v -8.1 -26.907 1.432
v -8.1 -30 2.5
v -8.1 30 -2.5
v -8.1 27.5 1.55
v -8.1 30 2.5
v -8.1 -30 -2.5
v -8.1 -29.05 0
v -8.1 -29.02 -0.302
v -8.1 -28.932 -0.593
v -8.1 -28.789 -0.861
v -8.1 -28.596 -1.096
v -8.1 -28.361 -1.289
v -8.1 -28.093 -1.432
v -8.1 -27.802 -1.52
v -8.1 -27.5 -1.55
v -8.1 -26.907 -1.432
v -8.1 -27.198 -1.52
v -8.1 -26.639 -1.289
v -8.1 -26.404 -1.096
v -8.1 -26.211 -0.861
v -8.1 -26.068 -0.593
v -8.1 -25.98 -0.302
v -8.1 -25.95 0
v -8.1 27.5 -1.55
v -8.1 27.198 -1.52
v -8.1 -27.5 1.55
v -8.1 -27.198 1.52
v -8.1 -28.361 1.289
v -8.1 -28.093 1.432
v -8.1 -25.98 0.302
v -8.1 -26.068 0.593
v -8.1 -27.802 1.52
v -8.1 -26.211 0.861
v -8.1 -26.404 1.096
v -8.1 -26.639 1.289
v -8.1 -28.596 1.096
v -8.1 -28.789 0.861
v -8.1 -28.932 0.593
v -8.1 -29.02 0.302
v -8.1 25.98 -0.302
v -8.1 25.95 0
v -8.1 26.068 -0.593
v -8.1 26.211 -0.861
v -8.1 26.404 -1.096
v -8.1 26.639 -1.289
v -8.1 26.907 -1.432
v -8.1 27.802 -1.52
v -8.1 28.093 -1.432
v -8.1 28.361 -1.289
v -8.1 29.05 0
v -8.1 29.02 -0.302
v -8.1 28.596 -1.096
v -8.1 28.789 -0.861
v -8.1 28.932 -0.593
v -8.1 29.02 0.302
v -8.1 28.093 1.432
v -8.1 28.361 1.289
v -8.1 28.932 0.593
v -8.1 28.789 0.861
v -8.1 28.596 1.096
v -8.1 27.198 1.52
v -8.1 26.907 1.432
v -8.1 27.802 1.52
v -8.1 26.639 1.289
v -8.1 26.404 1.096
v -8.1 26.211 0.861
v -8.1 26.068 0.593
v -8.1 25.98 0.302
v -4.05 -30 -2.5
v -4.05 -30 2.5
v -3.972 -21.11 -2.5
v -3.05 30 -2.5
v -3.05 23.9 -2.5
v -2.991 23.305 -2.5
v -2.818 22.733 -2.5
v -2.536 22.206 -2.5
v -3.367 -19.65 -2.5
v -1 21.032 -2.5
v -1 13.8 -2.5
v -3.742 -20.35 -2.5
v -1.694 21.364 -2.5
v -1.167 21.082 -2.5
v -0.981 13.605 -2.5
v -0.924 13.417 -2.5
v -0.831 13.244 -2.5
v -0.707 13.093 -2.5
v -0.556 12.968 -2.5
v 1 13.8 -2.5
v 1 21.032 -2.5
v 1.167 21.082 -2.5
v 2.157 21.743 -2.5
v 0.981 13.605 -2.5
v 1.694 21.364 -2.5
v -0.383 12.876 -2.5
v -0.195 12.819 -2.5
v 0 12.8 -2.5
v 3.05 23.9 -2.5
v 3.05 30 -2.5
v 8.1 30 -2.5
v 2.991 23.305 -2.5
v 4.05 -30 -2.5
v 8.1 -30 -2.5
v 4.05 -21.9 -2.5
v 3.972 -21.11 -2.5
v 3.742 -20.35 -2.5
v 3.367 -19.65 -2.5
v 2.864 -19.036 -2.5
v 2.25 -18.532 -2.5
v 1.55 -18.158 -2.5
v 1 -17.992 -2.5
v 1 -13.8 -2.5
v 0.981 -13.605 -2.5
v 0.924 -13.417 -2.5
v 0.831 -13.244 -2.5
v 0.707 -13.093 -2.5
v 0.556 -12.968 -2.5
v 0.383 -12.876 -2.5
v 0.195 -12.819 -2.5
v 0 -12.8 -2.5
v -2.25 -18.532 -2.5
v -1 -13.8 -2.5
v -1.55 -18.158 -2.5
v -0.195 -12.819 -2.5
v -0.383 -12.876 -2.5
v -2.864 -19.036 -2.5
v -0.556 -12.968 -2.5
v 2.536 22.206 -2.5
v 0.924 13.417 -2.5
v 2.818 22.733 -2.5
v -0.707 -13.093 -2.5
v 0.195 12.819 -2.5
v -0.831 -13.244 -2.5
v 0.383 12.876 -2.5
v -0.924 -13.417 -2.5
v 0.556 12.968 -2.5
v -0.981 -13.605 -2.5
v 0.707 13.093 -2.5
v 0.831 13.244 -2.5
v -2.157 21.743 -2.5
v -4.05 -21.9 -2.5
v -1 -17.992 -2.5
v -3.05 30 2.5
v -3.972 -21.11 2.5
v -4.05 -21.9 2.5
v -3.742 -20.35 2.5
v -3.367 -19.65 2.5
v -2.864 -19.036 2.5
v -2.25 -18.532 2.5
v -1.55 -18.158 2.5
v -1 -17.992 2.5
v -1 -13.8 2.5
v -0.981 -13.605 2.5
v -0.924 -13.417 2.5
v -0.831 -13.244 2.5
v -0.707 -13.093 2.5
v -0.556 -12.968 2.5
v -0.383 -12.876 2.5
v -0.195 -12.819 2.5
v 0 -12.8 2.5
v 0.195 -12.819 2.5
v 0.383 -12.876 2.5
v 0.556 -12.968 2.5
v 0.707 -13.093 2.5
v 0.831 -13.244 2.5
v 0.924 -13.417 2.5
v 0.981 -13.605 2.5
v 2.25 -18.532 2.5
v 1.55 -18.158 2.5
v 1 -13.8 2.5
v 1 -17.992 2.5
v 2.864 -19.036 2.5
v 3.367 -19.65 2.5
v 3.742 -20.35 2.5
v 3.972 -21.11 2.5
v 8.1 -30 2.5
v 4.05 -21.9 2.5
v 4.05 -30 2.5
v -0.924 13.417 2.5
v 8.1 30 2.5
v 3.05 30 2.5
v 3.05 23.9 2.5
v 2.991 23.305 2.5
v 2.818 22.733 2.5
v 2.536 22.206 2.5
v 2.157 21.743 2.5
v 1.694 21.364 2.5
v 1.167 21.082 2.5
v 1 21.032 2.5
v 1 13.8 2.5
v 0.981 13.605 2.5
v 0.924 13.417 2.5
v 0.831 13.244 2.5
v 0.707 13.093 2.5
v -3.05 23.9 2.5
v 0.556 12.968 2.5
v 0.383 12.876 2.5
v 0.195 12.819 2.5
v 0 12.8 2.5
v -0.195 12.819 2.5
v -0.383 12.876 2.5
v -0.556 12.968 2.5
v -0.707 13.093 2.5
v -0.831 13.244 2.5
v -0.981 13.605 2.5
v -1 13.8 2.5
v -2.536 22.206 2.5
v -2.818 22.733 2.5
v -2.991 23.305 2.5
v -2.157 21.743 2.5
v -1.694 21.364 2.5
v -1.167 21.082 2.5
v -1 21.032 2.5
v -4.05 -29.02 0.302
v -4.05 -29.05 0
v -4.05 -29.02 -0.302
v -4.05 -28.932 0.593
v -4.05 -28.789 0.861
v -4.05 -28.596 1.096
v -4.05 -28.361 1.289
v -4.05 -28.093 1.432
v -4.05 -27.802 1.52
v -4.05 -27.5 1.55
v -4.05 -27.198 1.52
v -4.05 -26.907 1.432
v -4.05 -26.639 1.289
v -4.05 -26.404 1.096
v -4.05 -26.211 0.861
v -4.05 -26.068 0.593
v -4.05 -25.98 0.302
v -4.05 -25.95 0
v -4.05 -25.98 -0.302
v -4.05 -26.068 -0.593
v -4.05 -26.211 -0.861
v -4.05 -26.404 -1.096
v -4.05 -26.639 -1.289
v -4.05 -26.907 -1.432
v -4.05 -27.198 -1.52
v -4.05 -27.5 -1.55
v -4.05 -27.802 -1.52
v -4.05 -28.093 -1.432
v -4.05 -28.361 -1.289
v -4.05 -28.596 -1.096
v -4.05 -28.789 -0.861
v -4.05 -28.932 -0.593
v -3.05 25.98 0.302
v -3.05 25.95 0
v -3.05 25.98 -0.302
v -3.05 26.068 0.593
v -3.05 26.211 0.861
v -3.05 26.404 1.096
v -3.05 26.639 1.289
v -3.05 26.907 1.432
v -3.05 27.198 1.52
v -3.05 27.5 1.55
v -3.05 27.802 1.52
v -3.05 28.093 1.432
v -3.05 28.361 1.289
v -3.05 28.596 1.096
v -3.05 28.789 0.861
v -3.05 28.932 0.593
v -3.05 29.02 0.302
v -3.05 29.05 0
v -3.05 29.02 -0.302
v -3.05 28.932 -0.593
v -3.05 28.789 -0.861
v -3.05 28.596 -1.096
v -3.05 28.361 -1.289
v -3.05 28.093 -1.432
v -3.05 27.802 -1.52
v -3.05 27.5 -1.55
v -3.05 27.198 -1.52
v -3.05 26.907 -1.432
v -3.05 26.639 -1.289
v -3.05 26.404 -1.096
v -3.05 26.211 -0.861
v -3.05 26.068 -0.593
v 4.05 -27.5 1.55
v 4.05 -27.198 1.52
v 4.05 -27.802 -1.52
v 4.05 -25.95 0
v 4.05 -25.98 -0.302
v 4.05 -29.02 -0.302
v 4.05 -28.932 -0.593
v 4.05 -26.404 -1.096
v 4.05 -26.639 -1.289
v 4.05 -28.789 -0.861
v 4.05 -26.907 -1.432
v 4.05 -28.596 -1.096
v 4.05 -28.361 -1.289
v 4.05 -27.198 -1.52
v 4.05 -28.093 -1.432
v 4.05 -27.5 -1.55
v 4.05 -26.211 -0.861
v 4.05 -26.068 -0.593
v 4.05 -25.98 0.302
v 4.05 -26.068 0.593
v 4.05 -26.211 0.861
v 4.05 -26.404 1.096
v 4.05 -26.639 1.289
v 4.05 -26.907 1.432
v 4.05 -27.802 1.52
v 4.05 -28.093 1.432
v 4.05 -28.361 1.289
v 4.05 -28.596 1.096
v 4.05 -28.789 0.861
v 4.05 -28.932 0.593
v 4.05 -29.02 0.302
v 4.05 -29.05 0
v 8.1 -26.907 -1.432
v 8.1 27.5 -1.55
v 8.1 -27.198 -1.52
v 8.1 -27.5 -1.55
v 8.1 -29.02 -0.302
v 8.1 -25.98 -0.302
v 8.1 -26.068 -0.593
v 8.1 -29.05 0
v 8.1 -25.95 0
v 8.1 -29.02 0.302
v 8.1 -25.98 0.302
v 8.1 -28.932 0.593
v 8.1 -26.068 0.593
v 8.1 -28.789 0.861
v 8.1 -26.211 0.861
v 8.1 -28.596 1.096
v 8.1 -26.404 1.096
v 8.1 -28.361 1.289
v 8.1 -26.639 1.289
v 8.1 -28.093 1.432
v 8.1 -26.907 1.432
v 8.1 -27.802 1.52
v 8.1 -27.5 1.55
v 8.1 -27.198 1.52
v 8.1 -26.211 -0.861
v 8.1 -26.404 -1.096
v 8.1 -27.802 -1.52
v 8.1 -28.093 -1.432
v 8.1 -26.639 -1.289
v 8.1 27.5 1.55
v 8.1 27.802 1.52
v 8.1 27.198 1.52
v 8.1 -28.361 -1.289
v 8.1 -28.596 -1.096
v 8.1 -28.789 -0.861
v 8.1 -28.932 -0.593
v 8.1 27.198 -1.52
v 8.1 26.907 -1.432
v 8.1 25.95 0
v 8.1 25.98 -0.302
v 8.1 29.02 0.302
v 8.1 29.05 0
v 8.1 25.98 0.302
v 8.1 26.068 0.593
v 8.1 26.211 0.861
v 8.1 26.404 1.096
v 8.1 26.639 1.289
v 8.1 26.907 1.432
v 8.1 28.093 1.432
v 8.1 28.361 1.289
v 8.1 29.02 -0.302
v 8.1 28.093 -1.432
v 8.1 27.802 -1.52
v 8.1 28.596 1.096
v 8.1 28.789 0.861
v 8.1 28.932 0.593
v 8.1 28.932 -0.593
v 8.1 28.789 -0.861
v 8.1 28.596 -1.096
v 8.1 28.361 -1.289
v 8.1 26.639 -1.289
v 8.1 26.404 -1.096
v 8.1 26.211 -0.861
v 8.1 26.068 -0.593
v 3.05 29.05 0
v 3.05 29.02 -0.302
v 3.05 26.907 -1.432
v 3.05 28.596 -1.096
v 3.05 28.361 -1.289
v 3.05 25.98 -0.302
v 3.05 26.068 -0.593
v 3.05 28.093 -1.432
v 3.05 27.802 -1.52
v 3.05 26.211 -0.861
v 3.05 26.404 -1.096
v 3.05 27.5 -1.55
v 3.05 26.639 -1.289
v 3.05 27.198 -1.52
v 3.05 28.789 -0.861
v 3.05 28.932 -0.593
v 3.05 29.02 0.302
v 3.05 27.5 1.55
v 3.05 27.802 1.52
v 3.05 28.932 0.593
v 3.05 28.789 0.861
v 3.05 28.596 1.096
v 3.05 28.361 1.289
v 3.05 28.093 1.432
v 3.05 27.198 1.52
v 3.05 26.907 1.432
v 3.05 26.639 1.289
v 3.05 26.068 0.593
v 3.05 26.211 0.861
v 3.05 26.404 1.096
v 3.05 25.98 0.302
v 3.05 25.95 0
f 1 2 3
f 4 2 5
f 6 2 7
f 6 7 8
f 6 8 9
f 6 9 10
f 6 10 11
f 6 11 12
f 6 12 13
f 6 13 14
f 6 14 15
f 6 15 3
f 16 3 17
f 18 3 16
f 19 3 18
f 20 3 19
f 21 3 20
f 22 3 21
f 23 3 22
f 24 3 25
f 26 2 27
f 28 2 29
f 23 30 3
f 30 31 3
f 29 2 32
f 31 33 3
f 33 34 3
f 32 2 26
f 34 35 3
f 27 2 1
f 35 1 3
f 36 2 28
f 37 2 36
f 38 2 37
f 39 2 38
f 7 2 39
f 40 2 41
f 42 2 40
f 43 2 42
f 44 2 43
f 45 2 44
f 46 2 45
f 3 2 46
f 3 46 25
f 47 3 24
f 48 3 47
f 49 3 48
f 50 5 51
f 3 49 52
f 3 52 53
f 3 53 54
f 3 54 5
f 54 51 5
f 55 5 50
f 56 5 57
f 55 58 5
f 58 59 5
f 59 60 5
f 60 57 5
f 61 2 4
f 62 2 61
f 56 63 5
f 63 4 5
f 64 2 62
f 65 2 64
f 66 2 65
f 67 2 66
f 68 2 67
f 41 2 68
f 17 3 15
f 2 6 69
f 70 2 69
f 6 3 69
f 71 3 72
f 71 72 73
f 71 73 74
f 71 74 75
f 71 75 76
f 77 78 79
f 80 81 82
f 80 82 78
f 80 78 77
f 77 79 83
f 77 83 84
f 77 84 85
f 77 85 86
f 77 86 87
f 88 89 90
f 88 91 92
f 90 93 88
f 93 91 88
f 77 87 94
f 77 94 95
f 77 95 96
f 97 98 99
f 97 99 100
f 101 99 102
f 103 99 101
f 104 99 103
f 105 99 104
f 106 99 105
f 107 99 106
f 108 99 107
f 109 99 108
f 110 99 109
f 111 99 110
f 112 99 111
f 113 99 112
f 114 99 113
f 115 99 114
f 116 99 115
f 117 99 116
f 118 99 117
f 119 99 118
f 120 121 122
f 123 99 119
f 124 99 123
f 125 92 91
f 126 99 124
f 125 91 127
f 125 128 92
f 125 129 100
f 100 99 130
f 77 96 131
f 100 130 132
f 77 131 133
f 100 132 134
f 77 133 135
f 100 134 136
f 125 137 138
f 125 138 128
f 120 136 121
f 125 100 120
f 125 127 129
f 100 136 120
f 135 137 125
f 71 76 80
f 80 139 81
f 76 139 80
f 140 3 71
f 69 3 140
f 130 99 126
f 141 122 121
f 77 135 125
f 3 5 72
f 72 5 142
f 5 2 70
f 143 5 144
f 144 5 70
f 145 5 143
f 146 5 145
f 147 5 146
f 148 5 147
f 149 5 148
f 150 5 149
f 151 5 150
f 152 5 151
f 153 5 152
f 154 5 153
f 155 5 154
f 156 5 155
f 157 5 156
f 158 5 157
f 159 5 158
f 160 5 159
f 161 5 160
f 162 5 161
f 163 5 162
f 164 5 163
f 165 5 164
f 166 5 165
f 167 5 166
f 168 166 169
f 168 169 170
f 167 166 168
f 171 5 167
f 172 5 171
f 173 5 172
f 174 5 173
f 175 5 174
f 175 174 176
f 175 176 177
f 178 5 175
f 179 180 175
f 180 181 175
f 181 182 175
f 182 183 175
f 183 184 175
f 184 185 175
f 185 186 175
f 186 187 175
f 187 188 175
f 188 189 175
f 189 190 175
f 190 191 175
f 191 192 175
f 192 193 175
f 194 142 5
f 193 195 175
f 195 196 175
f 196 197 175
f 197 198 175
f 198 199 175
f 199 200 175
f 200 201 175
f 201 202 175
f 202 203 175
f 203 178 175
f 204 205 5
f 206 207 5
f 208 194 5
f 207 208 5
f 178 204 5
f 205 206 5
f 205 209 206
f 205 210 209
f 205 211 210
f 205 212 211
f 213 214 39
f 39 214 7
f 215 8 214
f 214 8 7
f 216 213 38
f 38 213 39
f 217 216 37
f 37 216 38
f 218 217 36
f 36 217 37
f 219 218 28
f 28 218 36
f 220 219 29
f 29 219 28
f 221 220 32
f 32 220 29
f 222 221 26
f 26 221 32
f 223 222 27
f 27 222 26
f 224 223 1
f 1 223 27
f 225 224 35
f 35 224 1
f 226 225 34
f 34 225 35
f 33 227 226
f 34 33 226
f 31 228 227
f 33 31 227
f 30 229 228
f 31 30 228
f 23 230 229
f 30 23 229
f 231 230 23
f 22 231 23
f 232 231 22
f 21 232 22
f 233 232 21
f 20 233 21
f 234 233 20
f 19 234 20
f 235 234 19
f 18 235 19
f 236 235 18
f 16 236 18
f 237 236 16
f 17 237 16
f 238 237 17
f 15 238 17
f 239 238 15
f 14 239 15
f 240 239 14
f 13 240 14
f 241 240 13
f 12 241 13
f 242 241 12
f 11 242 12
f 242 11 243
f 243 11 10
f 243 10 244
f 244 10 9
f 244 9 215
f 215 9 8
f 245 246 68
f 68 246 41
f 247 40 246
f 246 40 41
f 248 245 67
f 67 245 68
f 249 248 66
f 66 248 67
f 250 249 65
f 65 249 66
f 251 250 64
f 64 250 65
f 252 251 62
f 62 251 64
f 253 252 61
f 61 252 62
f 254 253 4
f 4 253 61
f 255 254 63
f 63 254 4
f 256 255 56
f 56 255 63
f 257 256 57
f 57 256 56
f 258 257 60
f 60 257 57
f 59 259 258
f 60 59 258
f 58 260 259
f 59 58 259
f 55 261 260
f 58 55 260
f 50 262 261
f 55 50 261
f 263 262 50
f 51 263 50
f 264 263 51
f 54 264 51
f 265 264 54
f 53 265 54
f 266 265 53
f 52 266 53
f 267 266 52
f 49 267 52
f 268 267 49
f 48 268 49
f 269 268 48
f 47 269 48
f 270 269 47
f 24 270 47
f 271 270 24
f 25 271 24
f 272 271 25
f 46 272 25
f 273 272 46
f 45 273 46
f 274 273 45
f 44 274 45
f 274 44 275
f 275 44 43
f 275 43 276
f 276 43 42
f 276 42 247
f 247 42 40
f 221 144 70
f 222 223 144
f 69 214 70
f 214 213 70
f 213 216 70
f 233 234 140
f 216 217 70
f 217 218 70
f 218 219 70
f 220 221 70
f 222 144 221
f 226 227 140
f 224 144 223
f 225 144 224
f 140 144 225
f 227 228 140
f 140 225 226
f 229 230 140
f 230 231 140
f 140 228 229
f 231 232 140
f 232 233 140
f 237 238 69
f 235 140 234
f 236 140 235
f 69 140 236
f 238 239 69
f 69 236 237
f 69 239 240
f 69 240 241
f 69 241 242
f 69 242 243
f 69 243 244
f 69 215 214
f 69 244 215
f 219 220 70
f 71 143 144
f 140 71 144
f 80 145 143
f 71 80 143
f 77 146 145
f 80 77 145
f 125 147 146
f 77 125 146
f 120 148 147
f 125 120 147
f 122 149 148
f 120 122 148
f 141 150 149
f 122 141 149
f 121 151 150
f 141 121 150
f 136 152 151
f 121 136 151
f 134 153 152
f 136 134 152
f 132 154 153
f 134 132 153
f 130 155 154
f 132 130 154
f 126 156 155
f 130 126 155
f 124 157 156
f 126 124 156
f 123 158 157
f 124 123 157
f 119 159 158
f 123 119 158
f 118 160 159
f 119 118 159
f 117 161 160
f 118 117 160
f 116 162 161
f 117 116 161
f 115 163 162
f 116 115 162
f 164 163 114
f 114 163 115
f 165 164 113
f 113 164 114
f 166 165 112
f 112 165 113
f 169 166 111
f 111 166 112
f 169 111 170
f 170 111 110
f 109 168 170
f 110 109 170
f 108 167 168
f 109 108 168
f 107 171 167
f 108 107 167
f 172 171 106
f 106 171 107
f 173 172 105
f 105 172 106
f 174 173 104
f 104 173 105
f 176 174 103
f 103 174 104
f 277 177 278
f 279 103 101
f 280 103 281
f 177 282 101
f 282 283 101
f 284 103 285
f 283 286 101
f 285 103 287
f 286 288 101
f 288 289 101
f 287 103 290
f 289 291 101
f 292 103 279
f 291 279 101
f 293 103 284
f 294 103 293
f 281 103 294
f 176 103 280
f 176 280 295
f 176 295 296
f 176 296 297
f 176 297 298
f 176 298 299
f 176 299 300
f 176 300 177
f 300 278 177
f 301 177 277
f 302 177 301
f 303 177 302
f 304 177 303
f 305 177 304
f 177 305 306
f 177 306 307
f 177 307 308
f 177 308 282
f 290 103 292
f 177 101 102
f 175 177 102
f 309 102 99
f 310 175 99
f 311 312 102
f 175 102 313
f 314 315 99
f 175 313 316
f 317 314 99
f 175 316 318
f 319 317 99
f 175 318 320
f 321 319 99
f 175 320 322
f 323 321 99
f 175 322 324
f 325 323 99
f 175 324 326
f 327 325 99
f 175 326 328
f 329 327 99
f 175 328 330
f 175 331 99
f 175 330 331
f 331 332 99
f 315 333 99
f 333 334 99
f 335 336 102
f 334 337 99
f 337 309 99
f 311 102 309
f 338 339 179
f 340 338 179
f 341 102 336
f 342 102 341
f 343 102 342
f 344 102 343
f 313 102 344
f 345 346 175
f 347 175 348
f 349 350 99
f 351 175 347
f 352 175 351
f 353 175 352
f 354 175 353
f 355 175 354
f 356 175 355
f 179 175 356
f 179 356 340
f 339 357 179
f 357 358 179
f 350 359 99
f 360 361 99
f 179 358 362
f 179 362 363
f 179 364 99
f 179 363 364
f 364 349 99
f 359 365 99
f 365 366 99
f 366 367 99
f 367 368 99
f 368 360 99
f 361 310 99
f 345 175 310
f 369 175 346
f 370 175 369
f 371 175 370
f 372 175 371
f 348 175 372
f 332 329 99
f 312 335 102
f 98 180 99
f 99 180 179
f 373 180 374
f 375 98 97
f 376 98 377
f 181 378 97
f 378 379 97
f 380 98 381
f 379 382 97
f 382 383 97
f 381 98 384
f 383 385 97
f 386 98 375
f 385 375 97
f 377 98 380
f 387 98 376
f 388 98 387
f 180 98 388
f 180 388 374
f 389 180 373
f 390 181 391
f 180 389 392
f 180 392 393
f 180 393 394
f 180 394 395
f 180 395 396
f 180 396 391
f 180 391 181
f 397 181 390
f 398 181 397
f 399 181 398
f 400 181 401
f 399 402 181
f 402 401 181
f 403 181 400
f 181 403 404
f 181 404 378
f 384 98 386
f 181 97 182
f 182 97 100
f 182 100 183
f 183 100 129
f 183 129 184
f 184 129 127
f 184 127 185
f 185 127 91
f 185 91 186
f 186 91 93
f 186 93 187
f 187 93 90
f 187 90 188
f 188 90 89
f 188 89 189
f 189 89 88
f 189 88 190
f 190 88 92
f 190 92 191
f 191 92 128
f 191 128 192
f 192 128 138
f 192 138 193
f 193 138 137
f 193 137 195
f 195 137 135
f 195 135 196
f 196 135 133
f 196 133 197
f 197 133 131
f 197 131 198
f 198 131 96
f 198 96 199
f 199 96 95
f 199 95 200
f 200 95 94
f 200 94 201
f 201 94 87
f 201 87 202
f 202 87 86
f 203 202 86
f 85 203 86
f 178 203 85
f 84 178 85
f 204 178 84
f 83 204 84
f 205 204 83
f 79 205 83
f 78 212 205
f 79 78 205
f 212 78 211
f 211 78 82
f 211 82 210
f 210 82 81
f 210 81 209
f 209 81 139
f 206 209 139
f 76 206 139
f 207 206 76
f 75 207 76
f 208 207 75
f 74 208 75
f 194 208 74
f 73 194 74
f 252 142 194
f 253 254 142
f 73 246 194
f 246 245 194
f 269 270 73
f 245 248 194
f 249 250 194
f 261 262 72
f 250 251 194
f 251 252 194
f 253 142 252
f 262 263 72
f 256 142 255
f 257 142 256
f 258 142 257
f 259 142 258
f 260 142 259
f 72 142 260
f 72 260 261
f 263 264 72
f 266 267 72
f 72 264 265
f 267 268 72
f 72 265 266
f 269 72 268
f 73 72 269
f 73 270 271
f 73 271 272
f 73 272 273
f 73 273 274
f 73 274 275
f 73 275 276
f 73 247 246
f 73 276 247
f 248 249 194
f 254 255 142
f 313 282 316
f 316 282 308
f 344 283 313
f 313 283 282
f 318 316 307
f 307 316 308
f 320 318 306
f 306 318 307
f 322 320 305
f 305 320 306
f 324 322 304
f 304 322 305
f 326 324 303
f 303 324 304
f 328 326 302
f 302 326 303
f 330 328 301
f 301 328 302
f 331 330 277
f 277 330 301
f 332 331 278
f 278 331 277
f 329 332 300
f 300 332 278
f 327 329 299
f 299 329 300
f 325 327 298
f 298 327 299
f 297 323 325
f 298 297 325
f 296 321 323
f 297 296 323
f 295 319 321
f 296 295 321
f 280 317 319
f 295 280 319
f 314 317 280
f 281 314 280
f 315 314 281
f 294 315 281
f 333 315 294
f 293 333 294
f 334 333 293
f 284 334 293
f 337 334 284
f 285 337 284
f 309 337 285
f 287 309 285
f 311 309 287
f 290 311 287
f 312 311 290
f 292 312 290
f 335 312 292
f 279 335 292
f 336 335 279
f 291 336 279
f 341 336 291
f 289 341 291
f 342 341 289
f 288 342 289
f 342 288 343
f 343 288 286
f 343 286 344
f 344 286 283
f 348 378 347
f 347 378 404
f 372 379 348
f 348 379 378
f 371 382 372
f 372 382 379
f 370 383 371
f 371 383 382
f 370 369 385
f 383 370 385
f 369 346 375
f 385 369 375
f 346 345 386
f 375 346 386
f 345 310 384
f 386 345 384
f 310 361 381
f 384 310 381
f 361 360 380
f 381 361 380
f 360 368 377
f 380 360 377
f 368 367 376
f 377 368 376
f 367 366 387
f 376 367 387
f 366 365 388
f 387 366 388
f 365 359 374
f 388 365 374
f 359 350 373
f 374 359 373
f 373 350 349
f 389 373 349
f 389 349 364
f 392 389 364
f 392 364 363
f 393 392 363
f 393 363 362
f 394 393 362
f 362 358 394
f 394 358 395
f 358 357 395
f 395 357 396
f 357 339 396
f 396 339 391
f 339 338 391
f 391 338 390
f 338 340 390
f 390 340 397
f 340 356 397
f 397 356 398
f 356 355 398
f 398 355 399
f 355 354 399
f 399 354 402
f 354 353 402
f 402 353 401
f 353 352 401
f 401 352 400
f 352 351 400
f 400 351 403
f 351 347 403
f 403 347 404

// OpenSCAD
// simple parametric tensioner for Y-axis belt
// print 2 times (left/right)

BOLTD=8.1;          // bolt diameter
BEARD=6.1;          // bearing bolt diameter
SCREWD=3.1;         // screw diameter
XDIM=max(BOLTD, BEARD)*2;

THICK=5;            // thickness
LEN=60;             // overall length

NOTHING=.000001;    // next to nothing
$fn=32;

difference() {
    cube([XDIM, LEN, THICK], center=true);
    translate([0, -LEN/2, 0]) {
        minkowski() {
            cylinder(r=BOLTD/2, h=THICK*2, center=true);
            cube(size=[NOTHING, BOLTD*2, NOTHING], center=true);
        }
        minkowski() {
            cylinder(r=1, h=THICK*2, center=true);
            cube(size=[NOTHING, XDIM*2, 10], center=true);
        }
    }
    translate([0, LEN/2, 0]) {
        minkowski() {
            cylinder(r=BEARD/2, h=THICK*2, center=true);
            cube(size=[NOTHING, BEARD*2, NOTHING], center=true);
        }
        minkowski() {
            cylinder(r=1, h=THICK*2, center=true);
            cube(size=[NOTHING, XDIM*2, NOTHING], center=true);
        }
    }
    rotate([0, 90, 0]) {
        translate([0, -LEN/2+THICK/2, 0]) {
            cylinder(r=SCREWD/2, h=XDIM*2, center=true);
        }
        translate([0, LEN/2-THICK/2, 0]) {
            cylinder(r=SCREWD/2, h=XDIM*2, center=true);
        }
    }
    
}

//.
